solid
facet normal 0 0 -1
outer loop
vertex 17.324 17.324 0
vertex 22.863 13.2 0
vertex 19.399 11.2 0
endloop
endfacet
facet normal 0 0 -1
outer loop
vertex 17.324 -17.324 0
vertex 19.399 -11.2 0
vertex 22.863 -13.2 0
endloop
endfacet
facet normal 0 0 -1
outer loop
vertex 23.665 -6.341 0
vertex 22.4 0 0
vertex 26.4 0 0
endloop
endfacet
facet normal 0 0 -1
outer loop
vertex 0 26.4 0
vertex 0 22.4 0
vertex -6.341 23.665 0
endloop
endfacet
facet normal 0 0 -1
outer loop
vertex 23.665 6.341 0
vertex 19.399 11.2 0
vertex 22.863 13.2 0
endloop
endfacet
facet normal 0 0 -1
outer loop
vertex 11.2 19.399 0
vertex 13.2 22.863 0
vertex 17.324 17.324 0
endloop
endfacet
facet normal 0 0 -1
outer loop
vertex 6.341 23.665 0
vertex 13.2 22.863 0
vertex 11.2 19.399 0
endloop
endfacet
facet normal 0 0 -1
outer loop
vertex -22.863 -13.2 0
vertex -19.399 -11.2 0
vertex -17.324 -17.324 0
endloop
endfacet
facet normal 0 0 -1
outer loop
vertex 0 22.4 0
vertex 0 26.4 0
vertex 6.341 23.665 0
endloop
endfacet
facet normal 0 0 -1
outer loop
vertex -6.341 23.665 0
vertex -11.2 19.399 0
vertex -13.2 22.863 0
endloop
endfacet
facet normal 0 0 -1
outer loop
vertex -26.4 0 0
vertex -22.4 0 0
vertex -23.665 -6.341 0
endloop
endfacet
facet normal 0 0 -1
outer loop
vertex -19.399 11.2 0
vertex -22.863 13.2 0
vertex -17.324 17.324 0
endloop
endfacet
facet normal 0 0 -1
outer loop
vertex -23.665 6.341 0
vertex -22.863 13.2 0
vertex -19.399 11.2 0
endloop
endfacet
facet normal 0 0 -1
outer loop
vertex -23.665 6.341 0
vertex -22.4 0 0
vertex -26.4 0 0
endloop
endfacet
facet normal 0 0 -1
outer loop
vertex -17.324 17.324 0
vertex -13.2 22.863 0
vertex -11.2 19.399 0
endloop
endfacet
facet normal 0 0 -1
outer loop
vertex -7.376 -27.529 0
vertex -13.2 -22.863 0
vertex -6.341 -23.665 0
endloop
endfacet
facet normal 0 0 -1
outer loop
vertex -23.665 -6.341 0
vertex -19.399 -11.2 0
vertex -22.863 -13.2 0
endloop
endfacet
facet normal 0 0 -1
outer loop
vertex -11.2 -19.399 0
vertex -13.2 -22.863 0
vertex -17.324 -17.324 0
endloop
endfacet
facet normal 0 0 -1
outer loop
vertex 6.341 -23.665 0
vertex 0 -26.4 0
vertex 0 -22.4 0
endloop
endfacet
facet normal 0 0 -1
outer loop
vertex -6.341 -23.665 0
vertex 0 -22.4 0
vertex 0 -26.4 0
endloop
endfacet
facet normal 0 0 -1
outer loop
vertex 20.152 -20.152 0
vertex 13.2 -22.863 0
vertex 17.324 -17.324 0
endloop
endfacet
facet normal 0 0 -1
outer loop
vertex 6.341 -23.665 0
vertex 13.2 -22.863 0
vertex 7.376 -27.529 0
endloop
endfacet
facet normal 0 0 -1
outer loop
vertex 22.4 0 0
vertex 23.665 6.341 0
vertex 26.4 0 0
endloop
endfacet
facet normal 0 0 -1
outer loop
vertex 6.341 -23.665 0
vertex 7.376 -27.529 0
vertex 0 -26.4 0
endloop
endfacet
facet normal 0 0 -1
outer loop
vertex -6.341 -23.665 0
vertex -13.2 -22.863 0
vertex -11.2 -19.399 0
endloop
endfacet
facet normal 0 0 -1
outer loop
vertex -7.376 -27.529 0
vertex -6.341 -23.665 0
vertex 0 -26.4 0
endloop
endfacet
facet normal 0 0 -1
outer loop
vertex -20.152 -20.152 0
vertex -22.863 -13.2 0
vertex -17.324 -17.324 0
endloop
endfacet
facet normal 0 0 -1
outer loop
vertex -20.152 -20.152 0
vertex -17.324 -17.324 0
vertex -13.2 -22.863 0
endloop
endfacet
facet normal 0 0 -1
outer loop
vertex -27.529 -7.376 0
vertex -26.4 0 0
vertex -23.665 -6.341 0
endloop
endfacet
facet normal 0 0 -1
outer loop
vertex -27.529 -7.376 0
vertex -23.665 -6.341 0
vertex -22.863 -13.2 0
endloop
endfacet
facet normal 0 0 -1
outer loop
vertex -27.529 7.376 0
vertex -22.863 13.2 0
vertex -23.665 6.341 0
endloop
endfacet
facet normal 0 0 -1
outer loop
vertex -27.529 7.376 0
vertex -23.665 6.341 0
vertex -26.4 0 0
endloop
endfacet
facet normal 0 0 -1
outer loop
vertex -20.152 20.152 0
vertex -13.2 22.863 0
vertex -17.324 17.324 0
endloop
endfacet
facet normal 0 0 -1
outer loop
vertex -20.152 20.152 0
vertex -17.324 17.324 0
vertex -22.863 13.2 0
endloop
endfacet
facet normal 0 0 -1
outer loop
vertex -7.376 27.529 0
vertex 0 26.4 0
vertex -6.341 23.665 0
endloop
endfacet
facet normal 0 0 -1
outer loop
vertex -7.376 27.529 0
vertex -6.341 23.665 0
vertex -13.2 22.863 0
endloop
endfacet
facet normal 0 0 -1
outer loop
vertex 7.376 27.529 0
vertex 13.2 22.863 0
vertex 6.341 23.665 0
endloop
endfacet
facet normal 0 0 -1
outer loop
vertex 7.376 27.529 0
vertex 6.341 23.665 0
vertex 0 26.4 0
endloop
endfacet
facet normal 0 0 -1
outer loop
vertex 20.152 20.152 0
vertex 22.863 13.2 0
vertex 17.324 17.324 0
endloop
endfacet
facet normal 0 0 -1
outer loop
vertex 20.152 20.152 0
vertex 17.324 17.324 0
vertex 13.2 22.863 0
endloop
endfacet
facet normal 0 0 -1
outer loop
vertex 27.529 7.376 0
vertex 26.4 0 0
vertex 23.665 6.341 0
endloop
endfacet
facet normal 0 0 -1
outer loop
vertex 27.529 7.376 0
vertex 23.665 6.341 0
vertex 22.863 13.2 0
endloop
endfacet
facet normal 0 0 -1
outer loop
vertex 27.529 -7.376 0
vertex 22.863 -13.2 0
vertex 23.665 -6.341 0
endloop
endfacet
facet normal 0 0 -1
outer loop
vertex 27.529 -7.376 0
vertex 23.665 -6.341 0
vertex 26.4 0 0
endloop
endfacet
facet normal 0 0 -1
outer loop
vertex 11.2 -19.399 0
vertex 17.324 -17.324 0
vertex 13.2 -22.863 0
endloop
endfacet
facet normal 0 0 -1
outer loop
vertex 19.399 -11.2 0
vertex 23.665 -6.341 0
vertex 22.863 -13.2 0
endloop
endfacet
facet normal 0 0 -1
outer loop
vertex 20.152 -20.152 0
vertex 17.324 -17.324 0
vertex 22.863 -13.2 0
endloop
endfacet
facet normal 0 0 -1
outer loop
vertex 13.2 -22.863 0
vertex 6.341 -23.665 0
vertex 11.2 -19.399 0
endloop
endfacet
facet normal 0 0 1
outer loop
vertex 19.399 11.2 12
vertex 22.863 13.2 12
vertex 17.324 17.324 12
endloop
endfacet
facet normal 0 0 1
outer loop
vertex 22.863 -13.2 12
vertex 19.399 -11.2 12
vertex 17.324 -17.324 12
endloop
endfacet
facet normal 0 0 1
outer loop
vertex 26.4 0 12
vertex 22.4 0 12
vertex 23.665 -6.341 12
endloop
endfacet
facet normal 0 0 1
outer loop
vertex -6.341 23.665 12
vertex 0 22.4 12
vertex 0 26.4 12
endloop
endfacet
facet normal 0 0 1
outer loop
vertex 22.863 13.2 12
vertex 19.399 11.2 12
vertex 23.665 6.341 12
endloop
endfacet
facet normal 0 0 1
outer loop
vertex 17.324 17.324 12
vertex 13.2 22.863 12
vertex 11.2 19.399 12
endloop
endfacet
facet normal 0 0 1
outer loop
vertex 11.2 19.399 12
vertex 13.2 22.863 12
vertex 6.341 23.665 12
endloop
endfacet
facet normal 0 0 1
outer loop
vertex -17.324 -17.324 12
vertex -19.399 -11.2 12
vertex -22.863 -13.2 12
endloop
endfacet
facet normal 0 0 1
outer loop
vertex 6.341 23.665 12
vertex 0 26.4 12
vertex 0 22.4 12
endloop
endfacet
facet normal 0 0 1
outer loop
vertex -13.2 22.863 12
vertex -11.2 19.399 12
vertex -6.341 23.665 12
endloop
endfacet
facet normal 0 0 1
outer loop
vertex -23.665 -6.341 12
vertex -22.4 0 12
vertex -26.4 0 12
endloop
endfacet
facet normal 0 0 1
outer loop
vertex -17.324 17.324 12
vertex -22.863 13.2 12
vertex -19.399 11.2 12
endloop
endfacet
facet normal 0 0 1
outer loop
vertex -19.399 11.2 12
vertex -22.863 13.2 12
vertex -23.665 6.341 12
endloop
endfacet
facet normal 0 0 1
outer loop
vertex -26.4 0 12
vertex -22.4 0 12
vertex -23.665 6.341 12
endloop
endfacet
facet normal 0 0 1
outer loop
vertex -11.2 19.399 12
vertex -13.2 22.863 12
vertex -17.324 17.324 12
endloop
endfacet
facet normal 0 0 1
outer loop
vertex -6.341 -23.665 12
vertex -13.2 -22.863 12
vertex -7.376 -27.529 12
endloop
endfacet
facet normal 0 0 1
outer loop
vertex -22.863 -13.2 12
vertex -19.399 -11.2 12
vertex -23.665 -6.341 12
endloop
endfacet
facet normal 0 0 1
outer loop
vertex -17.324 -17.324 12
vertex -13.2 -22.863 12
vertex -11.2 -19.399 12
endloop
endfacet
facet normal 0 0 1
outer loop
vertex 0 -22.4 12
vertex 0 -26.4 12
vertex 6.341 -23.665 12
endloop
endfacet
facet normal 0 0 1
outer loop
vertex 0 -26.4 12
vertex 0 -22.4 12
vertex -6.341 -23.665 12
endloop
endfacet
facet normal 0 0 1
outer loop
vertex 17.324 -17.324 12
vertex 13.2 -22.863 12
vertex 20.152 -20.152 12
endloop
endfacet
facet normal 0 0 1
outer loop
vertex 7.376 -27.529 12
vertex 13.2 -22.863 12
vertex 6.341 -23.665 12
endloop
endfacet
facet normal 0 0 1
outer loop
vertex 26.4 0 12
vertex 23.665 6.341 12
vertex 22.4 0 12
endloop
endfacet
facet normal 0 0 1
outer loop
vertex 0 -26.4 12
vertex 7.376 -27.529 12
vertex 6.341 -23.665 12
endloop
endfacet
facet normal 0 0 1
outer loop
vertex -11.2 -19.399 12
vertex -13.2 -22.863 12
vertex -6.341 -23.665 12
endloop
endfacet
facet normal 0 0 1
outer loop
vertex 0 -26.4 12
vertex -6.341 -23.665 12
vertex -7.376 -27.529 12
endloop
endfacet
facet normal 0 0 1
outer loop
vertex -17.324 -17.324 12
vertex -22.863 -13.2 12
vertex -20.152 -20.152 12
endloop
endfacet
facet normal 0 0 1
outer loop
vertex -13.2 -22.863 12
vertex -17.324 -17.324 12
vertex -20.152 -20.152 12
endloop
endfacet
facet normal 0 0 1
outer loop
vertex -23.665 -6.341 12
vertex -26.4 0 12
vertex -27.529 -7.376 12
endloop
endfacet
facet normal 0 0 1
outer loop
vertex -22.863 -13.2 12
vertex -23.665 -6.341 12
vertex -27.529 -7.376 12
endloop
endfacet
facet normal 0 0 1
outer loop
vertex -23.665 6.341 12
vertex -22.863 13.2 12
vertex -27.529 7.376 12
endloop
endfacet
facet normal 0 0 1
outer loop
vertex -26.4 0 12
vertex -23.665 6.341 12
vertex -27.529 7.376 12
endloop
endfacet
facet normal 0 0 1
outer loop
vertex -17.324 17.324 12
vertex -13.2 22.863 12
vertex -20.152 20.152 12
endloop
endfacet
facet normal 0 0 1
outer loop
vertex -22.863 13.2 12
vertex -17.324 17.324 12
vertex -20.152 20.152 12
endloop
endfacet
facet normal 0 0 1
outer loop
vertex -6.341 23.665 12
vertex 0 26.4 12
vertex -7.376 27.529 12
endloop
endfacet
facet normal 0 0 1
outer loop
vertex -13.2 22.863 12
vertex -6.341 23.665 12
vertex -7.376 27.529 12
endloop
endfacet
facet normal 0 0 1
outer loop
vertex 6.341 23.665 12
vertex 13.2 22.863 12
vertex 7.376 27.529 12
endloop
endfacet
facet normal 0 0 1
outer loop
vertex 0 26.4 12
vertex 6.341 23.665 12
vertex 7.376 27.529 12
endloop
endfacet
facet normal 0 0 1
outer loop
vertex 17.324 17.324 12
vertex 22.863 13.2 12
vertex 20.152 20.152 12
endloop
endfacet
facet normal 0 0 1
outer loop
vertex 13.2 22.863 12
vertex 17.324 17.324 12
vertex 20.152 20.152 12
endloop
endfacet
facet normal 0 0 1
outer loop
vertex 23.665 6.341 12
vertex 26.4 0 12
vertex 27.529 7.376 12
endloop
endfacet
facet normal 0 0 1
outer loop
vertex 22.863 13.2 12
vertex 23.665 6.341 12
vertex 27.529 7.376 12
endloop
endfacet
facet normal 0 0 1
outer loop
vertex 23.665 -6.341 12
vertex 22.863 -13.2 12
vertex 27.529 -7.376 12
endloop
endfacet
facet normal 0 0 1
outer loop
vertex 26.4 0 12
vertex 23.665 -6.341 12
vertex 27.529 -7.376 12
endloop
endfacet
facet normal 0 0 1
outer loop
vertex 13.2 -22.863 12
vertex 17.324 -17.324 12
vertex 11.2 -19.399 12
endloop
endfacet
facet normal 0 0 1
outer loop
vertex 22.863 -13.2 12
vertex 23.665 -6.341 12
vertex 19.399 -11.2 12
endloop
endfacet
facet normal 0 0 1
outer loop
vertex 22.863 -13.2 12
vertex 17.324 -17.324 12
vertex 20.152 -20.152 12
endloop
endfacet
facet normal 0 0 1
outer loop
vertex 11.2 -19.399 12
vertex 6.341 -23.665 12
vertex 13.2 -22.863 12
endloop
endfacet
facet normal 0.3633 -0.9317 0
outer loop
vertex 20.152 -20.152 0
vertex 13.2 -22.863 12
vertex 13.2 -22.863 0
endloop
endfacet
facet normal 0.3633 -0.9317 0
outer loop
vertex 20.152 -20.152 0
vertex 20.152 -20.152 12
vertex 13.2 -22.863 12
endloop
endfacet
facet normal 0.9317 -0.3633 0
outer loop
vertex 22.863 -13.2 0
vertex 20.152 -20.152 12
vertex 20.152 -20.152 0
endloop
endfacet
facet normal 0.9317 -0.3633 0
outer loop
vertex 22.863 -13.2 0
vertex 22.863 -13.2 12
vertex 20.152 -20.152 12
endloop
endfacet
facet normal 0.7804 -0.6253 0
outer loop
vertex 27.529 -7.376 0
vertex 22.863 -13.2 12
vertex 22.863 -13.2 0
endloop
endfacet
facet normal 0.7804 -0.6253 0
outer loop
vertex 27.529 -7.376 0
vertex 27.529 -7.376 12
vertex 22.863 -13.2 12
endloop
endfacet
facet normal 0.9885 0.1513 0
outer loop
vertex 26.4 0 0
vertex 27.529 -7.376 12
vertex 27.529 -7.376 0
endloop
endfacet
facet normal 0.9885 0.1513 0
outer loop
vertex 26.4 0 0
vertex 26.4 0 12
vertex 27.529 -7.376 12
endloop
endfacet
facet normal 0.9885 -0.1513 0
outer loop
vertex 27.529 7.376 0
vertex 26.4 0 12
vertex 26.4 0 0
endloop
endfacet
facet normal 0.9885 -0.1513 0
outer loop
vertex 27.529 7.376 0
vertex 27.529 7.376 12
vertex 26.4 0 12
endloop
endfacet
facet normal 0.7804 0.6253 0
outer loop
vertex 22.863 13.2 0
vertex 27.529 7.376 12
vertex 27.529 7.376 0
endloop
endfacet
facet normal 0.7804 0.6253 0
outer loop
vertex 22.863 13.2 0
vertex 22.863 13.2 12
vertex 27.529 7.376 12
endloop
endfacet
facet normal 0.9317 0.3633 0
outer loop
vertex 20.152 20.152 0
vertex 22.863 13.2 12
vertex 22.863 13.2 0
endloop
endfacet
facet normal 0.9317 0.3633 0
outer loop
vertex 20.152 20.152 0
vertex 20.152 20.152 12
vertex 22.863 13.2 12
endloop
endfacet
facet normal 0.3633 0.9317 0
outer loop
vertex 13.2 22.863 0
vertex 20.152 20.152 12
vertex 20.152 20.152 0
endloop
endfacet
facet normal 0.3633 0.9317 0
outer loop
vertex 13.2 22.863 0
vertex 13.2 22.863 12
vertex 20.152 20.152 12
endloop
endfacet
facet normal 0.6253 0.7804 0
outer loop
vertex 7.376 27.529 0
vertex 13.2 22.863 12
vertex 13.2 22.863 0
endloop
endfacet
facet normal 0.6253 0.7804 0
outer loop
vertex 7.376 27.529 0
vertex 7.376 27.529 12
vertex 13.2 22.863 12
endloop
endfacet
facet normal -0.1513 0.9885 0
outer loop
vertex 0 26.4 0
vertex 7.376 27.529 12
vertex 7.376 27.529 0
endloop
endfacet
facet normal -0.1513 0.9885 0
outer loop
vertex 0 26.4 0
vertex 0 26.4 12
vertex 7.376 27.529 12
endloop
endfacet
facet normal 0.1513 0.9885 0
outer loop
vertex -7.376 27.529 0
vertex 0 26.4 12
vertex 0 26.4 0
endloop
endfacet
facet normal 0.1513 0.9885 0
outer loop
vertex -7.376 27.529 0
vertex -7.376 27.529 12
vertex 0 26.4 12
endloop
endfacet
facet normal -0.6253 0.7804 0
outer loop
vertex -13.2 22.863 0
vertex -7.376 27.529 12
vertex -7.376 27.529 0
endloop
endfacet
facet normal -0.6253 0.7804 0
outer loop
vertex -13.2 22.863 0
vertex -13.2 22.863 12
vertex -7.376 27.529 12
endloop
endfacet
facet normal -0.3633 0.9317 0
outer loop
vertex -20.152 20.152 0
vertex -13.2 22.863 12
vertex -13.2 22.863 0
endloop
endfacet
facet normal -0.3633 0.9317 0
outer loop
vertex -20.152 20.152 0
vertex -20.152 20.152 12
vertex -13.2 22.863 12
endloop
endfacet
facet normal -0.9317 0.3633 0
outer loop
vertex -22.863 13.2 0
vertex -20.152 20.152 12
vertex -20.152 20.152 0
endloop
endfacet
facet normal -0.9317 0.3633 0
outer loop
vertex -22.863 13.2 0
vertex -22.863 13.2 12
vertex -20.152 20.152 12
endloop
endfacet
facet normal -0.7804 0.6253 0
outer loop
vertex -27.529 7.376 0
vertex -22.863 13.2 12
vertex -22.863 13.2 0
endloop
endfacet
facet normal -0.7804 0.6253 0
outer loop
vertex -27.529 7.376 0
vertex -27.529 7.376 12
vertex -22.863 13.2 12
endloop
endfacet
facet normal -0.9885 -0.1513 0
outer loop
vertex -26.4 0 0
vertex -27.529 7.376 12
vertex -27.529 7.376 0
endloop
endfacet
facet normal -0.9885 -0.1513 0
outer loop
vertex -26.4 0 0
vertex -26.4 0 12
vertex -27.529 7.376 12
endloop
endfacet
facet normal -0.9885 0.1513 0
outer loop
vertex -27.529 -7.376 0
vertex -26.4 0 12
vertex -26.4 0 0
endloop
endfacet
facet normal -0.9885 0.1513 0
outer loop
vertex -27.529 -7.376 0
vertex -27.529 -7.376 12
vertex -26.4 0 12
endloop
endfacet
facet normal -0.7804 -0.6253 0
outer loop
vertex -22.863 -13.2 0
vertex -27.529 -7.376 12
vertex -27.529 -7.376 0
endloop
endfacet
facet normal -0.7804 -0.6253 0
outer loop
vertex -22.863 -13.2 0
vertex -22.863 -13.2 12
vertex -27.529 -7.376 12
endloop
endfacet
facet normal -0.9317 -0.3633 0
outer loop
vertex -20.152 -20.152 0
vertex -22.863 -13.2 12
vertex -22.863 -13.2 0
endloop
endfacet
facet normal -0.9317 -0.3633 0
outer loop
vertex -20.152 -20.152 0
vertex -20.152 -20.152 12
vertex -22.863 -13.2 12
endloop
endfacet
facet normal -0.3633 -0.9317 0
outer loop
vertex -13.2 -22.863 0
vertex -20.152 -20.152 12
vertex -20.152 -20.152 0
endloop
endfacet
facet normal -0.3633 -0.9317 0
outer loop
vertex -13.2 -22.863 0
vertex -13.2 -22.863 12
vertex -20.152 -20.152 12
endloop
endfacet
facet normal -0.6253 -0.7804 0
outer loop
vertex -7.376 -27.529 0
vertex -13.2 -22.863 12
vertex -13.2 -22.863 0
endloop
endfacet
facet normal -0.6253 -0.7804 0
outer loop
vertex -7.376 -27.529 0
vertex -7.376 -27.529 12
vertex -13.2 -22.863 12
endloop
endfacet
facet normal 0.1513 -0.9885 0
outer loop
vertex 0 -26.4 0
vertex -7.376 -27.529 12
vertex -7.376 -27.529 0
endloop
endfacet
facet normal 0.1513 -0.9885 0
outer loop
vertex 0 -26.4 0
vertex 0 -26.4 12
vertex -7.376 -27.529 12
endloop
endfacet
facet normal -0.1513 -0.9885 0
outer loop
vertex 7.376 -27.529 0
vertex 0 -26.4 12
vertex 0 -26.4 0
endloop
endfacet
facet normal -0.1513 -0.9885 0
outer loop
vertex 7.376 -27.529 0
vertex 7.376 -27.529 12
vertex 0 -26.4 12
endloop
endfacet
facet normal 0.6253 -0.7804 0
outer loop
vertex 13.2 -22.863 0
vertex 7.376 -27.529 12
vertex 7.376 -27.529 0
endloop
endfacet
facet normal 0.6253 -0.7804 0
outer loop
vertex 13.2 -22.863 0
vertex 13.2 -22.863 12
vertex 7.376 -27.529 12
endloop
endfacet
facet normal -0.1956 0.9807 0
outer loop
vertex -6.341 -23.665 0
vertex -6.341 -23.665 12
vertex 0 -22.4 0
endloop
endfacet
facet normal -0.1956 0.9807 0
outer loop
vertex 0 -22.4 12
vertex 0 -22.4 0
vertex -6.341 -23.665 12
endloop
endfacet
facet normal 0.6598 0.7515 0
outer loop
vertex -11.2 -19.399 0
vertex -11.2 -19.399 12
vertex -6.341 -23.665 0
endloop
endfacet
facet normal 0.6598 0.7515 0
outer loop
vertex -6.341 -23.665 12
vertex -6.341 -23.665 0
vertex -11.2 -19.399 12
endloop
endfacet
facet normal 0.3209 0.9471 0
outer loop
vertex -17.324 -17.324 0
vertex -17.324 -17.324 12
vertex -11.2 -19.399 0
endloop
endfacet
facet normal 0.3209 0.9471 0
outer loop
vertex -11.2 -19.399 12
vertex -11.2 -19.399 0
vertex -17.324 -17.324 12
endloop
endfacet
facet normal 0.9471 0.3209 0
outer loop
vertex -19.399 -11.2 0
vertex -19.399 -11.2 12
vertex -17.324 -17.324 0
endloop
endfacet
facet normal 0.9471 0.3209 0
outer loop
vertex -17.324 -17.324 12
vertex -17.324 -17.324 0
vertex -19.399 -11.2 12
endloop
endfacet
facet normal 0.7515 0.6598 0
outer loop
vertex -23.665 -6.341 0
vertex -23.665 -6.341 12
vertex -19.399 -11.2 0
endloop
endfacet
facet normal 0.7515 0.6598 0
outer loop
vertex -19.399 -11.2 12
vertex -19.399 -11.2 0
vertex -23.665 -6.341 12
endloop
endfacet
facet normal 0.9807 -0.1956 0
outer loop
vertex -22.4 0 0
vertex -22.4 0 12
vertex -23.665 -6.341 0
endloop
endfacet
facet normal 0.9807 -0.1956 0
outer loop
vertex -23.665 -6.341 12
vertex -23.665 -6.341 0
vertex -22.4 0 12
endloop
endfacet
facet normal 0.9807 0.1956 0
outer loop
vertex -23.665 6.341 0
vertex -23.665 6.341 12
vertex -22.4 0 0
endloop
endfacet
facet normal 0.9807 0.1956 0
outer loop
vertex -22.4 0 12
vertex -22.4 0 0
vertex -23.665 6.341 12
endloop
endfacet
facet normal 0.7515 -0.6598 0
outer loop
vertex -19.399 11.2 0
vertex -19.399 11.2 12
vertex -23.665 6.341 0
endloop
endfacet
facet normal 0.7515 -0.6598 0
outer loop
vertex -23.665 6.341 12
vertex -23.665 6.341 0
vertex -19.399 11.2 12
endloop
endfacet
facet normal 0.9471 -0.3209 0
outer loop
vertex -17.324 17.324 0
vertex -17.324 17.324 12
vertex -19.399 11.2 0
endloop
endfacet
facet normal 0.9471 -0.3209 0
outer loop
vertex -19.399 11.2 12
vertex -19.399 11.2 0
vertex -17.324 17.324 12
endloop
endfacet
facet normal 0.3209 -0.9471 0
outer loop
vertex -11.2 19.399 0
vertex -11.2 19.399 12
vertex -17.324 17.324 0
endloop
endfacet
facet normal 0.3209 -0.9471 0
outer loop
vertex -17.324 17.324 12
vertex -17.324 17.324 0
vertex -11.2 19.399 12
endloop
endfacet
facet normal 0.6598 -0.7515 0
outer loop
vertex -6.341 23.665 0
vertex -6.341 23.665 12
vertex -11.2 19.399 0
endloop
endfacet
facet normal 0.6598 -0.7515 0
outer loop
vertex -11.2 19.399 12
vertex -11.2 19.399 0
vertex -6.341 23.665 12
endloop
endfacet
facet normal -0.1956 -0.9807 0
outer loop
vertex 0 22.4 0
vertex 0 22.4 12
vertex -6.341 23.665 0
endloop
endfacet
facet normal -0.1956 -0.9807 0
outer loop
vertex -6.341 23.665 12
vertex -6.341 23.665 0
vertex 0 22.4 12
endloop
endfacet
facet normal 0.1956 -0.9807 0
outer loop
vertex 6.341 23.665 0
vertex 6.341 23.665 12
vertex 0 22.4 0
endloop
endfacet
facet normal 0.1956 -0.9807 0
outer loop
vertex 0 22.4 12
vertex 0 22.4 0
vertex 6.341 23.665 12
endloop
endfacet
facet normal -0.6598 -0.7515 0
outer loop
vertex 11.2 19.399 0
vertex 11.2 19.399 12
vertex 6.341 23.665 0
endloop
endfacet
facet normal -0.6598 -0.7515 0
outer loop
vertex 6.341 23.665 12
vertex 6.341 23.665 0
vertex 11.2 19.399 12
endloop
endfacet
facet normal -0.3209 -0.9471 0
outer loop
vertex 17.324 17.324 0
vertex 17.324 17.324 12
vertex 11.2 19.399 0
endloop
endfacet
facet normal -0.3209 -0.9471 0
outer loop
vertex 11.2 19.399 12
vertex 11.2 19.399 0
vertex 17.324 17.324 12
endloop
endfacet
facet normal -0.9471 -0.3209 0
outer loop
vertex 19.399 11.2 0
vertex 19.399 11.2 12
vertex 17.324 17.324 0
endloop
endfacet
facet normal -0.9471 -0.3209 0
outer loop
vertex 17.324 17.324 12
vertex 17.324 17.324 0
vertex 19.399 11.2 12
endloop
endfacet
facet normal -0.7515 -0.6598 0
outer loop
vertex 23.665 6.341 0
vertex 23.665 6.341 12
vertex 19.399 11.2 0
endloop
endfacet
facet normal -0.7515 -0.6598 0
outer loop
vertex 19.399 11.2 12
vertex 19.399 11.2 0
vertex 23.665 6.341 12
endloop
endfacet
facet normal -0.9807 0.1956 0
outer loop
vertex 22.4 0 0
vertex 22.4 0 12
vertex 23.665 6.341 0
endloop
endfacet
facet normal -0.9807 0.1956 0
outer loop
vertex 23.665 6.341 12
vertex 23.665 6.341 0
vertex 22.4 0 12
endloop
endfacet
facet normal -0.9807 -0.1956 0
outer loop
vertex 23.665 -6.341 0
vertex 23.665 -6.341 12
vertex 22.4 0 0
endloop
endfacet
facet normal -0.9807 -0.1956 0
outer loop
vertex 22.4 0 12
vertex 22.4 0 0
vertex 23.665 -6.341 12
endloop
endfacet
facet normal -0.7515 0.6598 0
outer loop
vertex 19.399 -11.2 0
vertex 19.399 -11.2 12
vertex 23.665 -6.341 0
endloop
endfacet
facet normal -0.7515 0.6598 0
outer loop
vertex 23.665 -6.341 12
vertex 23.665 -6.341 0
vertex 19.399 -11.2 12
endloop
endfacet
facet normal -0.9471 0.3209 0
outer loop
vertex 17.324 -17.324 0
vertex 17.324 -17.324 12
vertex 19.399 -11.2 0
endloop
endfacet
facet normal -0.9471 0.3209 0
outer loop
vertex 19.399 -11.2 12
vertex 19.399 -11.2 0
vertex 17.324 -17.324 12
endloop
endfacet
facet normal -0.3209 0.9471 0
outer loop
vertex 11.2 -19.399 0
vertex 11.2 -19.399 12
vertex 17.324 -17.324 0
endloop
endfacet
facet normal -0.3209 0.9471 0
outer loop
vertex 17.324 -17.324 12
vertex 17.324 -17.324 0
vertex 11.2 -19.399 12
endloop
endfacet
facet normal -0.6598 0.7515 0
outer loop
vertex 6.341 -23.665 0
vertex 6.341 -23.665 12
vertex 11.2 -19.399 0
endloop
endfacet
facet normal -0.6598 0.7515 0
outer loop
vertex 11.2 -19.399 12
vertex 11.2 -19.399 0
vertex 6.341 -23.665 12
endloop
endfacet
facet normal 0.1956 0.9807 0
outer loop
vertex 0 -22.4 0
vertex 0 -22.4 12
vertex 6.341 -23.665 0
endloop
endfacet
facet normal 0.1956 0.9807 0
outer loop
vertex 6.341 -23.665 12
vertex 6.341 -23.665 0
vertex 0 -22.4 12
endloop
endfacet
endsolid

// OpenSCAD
// Here are some global varialbes
$fn = 50;
rad = 57.29578;

// These below are globals.. used to call some functions...
MAX_DEGREE = 360;

N_TOOTH = 12; // Yeah its just 12 tooths..
WIDTH_TOOL = 4; // Using 5 millimeter for width of the 'mouth'
HEIGHT_TOOL = 7; // Measured about 8 or so.. again, want an easy fit
INNER_RADIUS = 26.4; // The measured inner radius is about 26.4 mm, using less for an easy fit
OUTER_RADIUS = 28.5;  // The measured part is about 29mm, using less to be sure it fits easily

RADIUS_HOLE = 22; // 20 mm measured. Extra for wiggle room

HEIGHT_ARM = 5; // Dunno, thickness of the arm...
LENGTH_ARM = 200 ; // Some indication for the 'arm' of the tool. Not sure if this works well


module honeywell_gear(n_tooth, inner_radius, outer_radius){
    // This creates a circle with 'Tooths'
    tau = 360/n_tooth;
    union() {
        polygon([for (rot = [0:tau:MAX_DEGREE]) [inner_radius * cos(rot), inner_radius * sin(rot)]]);
        for (rot = [0:tau:MAX_DEGREE]){
            x0 = inner_radius * cos(rot);
            y0 = inner_radius * sin(rot);

            x1 = outer_radius * cos(rot + tau/2);
            y1 = outer_radius * sin(rot + tau/2);

            x2 = inner_radius * cos(rot + tau);
            y2 = inner_radius * sin(rot + tau);
            echo([[x0,y0], [x1, y1], [x2, y2]]);
            polygon([[x0,y0], [x1, y1], [x2, y2]]);
        }
   }
}


module honeywell_gear_hollow(n_tooth, inner_radius, outer_radius, width_tool, height_tool){
    // Here we create the 'mouth' used to get into the tool
    // Adding height of the arm to it, so that netto we still have the desired height.
    linear_extrude(height = height_tool){
        difference(){
            honeywell_gear (n_tooth=n_tooth, inner_radius=inner_radius, outer_radius=outer_radius);
            honeywell_gear (n_tooth=n_tooth, inner_radius=inner_radius - width_tool, outer_radius=outer_radius - width_tool);
        };
    };
}


module tool_arm(){
    // Here we create the handle / arm to rotate it...
    // This is also where the trouble starts..
    difference(){
    translate([0, LENGTH_ARM / 2 - OUTER_RADIUS , 0]){
        cube([2 * OUTER_RADIUS, LENGTH_ARM, HEIGHT_ARM], center=true);
    };
        cylinder(h = 2 * HEIGHT_ARM, center=true, r=RADIUS_HOLE);
}
}

// Creat tool without arm
honeywell_gear_hollow(max_degree = MAX_DEGREE, n_tooth = N_TOOTH, inner_radius = INNER_RADIUS,
outer_radius = OUTER_RADIUS, width_tool = WIDTH_TOOL, height_tool = HEIGHT_TOOL + HEIGHT_ARM);


// Create tool with arm
//union() {
//    tool_arm();
//    honeywell_gear_hollow(max_degree = MAX_DEGREE, n_tooth = N_TOOTH, inner_radius = INNER_RADIUS,
//    outer_radius = OUTER_RADIUS, width_tool = WIDTH_TOOL, height_tool = HEIGHT_TOOL + HEIGHT_ARM);
//}
